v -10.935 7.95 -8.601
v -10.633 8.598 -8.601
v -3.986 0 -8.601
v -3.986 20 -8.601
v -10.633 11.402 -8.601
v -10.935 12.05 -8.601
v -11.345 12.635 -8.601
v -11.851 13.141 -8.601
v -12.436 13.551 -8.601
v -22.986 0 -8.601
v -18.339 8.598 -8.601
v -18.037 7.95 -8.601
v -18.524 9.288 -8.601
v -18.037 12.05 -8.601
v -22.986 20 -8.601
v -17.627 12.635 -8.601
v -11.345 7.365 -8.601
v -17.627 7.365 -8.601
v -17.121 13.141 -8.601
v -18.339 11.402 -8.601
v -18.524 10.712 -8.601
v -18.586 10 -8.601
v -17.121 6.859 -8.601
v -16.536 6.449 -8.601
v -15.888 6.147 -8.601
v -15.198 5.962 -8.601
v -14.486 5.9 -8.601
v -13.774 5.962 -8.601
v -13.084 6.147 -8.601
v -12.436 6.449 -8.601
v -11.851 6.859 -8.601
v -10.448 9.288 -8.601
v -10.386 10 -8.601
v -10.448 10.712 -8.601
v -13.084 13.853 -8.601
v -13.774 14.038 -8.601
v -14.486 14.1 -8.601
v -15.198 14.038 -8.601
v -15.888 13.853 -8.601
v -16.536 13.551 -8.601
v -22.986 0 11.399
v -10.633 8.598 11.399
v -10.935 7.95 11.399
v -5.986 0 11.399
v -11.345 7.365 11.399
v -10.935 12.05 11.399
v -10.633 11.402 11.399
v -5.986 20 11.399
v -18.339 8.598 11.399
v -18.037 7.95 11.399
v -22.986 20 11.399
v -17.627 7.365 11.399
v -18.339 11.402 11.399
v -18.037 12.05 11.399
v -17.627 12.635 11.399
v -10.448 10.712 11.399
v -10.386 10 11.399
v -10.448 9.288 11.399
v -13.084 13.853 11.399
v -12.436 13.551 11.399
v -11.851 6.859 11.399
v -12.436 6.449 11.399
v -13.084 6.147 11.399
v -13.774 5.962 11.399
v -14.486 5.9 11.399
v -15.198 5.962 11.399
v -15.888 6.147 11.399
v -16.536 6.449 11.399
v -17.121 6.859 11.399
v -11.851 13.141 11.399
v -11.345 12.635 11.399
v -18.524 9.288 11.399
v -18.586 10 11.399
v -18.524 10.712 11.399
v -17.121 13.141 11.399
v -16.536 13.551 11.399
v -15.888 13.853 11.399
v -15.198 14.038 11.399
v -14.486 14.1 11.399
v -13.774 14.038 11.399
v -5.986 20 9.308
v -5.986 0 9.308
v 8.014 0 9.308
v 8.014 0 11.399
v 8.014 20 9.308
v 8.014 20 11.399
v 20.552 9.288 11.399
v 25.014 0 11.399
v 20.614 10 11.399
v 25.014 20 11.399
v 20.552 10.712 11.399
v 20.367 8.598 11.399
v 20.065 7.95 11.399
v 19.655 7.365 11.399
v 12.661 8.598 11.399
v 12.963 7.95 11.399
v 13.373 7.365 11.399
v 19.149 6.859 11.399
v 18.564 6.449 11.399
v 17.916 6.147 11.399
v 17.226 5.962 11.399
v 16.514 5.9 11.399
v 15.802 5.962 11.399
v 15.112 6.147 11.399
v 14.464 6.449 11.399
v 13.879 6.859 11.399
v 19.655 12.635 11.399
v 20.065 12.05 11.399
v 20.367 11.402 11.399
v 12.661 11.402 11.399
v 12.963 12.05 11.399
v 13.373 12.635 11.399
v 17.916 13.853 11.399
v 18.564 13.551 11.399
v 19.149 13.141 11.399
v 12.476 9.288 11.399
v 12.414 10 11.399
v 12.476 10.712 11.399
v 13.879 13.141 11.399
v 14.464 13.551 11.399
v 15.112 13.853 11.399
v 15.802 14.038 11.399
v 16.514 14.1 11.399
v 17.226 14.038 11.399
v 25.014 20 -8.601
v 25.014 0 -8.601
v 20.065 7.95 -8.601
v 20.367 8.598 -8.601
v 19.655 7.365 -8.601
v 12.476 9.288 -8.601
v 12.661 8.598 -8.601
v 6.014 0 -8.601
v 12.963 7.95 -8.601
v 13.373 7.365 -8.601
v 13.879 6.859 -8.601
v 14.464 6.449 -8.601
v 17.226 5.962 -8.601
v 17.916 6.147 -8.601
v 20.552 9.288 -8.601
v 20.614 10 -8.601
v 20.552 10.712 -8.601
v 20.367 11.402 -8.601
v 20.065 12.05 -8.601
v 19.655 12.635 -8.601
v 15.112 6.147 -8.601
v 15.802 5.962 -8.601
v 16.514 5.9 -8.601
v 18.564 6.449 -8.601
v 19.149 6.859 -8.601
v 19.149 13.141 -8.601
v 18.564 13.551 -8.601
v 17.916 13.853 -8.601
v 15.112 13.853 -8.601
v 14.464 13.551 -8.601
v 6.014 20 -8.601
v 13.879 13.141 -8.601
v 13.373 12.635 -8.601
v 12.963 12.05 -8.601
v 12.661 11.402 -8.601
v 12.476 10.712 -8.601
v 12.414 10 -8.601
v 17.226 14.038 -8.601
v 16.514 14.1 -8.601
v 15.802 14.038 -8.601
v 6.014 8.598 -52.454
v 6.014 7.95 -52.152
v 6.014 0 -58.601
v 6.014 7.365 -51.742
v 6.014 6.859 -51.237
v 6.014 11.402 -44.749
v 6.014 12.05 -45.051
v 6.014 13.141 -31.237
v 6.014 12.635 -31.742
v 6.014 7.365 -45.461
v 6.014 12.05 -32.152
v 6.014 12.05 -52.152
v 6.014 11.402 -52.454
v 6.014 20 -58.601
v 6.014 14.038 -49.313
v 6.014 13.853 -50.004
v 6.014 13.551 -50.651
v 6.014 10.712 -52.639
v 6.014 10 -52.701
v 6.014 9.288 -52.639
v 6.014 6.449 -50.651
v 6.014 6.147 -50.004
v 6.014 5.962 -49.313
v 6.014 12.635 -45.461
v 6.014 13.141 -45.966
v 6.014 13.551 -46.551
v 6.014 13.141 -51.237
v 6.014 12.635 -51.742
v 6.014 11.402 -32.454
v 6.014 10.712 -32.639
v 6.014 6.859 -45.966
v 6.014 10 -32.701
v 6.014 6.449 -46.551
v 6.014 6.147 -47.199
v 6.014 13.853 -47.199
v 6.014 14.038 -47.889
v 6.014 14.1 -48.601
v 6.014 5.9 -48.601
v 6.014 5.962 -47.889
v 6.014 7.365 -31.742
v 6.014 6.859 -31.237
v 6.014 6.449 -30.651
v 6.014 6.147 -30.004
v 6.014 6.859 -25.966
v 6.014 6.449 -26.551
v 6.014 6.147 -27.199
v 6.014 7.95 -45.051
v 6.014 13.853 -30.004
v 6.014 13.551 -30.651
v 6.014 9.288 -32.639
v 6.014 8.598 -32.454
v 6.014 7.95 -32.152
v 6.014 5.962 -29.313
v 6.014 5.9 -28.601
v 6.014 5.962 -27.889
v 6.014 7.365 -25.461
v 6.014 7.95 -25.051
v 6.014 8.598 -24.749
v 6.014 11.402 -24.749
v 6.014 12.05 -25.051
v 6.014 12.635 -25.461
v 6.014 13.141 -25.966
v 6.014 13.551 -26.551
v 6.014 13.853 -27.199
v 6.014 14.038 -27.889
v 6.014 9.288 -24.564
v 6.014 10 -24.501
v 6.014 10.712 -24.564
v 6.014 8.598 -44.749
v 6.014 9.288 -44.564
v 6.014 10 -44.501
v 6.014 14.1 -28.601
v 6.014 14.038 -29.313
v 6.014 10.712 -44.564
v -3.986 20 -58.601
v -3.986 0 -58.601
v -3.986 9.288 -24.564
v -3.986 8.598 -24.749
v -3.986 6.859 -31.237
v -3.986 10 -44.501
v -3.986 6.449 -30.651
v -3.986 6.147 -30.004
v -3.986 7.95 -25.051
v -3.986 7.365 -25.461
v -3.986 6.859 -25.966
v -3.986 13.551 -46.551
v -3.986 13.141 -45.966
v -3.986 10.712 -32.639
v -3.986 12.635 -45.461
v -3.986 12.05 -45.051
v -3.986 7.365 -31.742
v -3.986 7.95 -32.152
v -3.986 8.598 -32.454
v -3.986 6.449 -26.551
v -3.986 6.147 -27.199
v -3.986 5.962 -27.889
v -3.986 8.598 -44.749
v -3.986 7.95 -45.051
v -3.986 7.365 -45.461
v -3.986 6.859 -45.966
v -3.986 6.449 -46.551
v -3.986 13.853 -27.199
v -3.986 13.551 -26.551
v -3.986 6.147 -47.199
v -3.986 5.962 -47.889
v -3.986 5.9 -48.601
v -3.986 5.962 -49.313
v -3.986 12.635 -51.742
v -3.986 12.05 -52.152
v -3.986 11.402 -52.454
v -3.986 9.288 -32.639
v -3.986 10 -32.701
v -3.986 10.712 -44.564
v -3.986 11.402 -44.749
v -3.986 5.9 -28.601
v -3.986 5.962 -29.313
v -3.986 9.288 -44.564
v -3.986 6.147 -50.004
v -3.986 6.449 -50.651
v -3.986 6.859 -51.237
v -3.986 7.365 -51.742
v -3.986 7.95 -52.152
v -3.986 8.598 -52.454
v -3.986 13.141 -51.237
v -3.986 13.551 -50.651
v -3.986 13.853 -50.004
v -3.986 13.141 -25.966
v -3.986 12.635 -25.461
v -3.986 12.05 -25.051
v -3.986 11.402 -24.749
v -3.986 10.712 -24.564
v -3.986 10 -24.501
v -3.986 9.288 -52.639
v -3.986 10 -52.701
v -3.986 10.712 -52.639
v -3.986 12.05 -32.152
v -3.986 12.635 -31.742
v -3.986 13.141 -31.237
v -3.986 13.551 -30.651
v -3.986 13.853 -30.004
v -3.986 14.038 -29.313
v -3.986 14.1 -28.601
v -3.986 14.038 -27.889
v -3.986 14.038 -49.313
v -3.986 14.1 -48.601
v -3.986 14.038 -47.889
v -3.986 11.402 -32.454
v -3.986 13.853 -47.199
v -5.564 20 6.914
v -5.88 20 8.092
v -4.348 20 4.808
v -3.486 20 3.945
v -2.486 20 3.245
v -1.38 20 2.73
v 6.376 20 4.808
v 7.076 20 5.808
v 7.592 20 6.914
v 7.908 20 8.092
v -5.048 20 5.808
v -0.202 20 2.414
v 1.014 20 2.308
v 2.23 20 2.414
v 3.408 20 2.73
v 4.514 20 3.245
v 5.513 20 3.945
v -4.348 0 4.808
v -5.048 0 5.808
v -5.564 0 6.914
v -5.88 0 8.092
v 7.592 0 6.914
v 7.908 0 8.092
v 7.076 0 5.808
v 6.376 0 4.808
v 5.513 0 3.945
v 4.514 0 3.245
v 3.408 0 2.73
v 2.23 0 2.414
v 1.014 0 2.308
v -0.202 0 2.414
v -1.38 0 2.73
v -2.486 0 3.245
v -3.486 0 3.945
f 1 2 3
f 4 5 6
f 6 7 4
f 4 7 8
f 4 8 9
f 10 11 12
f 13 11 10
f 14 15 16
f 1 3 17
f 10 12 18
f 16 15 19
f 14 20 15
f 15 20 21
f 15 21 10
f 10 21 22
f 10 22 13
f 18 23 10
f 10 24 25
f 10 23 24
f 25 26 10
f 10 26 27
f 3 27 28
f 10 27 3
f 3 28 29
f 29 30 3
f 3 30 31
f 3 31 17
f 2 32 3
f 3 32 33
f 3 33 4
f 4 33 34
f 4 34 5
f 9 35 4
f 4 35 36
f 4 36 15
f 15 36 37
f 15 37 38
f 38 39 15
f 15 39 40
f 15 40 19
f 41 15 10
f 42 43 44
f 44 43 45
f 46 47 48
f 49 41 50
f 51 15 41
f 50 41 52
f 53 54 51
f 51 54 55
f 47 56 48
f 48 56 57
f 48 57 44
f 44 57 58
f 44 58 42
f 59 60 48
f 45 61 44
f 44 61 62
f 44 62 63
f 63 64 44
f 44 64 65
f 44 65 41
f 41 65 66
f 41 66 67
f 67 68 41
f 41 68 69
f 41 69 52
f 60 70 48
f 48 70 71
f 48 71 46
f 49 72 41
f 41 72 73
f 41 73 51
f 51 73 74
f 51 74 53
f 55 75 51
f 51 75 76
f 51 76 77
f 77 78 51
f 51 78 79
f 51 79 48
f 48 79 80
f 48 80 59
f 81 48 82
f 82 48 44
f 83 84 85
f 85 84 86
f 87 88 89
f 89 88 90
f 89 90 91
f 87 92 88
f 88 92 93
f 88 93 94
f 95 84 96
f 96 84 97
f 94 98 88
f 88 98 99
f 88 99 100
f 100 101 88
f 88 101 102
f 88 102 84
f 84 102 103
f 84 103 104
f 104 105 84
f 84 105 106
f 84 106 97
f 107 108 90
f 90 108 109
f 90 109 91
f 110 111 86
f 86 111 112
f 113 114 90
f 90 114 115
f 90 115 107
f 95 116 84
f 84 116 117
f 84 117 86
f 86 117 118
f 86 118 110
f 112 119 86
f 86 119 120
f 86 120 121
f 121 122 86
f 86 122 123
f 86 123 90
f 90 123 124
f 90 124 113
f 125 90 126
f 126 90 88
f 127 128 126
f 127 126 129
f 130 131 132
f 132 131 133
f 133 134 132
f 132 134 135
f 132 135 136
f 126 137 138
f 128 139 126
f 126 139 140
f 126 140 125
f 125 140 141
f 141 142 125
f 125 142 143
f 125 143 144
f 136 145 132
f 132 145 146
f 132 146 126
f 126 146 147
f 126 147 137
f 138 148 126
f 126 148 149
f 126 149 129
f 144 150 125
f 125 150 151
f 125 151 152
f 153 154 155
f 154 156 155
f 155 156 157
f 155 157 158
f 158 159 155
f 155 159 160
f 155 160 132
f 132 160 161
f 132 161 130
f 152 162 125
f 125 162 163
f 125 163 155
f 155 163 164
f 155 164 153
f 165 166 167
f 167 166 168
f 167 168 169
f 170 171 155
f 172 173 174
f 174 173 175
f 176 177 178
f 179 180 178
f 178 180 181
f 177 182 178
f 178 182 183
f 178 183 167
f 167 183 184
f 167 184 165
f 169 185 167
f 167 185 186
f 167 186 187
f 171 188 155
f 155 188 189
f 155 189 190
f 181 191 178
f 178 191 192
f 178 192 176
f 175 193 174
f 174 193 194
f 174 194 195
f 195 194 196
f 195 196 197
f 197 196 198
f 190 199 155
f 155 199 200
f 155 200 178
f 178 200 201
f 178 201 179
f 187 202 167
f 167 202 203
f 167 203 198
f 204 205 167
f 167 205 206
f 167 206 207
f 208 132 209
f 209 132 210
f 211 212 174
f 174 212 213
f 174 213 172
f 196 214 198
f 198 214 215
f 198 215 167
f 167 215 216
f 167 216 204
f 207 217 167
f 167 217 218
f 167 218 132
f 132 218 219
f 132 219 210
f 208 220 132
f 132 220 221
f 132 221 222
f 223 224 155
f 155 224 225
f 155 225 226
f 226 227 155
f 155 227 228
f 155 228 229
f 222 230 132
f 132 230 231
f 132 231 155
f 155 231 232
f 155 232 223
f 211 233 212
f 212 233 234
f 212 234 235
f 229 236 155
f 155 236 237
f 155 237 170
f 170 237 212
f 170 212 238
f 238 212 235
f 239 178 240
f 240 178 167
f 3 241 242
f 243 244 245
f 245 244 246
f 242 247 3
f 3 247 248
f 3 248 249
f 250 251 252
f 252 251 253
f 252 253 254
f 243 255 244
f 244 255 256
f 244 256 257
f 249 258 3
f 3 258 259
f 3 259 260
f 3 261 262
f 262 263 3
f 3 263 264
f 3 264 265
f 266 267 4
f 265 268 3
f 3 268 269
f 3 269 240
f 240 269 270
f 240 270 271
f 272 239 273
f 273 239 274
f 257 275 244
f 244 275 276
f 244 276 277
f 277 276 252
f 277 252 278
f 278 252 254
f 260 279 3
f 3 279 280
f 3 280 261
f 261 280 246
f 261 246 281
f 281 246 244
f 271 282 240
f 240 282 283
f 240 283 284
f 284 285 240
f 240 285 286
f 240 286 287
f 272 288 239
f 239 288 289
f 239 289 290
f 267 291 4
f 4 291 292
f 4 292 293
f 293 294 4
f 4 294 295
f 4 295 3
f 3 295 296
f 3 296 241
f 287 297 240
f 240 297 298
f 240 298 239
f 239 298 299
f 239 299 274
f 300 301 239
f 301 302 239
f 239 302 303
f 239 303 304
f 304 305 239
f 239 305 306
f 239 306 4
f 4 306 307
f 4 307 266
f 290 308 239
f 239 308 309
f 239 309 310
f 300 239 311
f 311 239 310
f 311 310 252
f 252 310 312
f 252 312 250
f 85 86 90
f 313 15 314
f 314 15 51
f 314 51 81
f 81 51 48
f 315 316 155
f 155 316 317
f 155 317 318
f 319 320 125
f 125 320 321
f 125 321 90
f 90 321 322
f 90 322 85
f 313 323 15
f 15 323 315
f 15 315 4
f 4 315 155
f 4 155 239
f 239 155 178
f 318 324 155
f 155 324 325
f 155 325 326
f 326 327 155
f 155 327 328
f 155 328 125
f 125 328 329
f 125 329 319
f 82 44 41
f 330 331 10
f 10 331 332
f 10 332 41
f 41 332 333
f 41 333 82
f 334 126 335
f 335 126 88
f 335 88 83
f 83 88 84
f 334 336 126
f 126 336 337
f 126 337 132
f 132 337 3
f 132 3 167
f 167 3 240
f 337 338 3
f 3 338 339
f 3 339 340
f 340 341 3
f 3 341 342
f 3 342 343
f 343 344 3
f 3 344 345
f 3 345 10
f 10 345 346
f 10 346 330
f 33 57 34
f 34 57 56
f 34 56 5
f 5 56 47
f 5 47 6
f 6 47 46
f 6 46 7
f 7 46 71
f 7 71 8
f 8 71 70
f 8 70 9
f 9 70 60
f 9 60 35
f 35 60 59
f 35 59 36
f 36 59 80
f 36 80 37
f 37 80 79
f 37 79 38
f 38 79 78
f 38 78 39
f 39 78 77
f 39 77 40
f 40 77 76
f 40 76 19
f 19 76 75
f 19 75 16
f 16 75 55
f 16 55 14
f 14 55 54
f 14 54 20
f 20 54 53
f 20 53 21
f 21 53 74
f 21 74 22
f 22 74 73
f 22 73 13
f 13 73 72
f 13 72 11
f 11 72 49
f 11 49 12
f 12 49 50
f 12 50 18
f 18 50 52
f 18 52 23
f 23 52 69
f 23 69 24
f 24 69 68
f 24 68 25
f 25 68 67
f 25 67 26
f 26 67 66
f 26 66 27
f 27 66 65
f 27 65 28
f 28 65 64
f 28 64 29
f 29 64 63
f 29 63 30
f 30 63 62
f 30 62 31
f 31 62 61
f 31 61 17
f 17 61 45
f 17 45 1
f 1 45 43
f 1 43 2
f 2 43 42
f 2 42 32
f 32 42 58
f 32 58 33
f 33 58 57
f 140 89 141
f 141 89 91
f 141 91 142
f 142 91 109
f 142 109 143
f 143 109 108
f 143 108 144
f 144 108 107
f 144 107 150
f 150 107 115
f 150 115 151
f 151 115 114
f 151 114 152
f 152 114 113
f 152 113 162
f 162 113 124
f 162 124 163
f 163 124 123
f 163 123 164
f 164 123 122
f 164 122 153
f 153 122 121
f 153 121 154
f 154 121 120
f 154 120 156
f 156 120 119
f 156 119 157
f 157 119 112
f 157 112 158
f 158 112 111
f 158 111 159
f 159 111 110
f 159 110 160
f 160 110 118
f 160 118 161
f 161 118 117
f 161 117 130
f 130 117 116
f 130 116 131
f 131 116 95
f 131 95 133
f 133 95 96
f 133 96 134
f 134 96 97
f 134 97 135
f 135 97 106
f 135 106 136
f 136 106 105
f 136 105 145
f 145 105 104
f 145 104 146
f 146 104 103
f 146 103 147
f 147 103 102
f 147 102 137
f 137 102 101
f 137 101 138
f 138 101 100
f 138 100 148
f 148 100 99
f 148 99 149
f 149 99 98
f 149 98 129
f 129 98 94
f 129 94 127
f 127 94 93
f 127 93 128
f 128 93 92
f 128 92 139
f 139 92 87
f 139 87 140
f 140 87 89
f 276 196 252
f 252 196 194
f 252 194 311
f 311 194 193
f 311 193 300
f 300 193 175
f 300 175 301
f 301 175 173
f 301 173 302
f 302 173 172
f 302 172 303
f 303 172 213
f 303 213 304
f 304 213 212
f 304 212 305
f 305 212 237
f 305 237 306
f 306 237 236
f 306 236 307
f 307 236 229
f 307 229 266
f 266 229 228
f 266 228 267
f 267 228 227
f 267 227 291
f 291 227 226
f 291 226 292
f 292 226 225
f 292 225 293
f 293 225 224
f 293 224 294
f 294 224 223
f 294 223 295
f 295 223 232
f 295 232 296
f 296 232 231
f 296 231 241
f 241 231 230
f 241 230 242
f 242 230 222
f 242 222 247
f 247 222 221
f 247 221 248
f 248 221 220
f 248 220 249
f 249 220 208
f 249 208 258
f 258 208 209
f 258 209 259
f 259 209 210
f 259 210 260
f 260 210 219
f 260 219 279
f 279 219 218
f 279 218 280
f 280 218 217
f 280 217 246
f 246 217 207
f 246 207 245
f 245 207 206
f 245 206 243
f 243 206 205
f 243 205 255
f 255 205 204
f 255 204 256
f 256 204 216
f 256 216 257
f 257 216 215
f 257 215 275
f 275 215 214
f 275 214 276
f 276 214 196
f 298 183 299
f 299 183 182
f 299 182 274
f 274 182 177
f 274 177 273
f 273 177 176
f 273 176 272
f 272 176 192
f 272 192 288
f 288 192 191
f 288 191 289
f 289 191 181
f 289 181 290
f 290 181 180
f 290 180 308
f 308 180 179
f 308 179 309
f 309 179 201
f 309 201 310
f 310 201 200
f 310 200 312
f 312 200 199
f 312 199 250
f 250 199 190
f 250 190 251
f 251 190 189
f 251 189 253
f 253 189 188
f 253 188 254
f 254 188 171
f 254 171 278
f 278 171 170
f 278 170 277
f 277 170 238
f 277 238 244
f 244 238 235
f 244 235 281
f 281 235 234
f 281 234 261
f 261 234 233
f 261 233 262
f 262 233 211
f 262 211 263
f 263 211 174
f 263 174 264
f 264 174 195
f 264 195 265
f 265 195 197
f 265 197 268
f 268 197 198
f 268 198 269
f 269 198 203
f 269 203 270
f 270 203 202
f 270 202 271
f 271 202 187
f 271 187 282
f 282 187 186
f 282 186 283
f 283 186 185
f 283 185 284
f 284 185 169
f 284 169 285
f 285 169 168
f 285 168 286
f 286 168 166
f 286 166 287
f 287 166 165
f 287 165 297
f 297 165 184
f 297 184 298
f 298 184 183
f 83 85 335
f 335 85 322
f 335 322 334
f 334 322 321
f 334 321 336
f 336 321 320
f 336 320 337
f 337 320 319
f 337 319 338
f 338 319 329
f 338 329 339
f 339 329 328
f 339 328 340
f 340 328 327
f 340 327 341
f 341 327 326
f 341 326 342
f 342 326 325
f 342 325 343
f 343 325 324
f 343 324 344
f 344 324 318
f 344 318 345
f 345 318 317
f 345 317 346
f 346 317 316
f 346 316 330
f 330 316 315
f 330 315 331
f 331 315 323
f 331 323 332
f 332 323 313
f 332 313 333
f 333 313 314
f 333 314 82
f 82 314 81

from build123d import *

# Parameters (mm, degrees)
BOSS_EXTRUDE1_DEPTH = 20
SKETCH3_R           = 4.1
CUT_EXTRUDE1_DEPTH  = 77.978565174
SKETCH4_R           = 4.1
CUT_EXTRUDE2_DEPTH  = 69.374877828
FILLET1_R           = 7


with BuildPart() as part:
    # Sketch1 → Boss-Extrude1 (new body)
    with BuildSketch(Plane(origin=(0, 0, 0), x_dir=(1, 0, 0), z_dir=(0, 1, 0))):
        Polygon((-22.986013986, 8.601398601), (-22.986013986, -11.398601399), (-5.986013986, -11.398601399), (-5.986013986, -2.307692308), (8.013986014, -2.307692308), (8.013986014, -11.398601399), (25.013986014, -11.398601399), (25.013986014, 8.601398601), (6.013986014, 8.601398601), (6.013986014, 58.601398601), (-3.986013986, 58.601398601), (-3.986013986, 8.601398601), align=None)
    extrude(amount=BOSS_EXTRUDE1_DEPTH)

    # Sketch3 → Cut-Extrude1 (cut, through all)
    with BuildSketch(Plane.XY.offset(11.398601399)):
        with Locations((-14.486013986, 10)):
            Circle(SKETCH3_R)
        with Locations((16.513986014, 10)):
            Circle(SKETCH3_R)
    extrude(amount=-CUT_EXTRUDE1_DEPTH, mode=Mode.SUBTRACT)

    # Sketch4 → Cut-Extrude2 (cut, through all)
    with BuildSketch(Plane(origin=(6.013986014, 0, 0), x_dir=(0, 0, -1), z_dir=(1, 0, 0))):
        with Locations((28.601398601, 10)):
            Circle(SKETCH4_R)
        with Locations((48.601398601, 10)):
            Circle(SKETCH4_R)
    extrude(amount=-CUT_EXTRUDE2_DEPTH, mode=Mode.SUBTRACT)

    # Fillet1
    fillet1_edges = [part.edges().sort_by_distance(p)[0] for p in [
        (-5.986013986, 10, 2.307692308),
        (8.013986014, 10, 2.307692308),
    ]]
    fillet(fillet1_edges, radius=FILLET1_R - 0.0001)  # a hair under: the kernel refuses the full size


solid = part.part
